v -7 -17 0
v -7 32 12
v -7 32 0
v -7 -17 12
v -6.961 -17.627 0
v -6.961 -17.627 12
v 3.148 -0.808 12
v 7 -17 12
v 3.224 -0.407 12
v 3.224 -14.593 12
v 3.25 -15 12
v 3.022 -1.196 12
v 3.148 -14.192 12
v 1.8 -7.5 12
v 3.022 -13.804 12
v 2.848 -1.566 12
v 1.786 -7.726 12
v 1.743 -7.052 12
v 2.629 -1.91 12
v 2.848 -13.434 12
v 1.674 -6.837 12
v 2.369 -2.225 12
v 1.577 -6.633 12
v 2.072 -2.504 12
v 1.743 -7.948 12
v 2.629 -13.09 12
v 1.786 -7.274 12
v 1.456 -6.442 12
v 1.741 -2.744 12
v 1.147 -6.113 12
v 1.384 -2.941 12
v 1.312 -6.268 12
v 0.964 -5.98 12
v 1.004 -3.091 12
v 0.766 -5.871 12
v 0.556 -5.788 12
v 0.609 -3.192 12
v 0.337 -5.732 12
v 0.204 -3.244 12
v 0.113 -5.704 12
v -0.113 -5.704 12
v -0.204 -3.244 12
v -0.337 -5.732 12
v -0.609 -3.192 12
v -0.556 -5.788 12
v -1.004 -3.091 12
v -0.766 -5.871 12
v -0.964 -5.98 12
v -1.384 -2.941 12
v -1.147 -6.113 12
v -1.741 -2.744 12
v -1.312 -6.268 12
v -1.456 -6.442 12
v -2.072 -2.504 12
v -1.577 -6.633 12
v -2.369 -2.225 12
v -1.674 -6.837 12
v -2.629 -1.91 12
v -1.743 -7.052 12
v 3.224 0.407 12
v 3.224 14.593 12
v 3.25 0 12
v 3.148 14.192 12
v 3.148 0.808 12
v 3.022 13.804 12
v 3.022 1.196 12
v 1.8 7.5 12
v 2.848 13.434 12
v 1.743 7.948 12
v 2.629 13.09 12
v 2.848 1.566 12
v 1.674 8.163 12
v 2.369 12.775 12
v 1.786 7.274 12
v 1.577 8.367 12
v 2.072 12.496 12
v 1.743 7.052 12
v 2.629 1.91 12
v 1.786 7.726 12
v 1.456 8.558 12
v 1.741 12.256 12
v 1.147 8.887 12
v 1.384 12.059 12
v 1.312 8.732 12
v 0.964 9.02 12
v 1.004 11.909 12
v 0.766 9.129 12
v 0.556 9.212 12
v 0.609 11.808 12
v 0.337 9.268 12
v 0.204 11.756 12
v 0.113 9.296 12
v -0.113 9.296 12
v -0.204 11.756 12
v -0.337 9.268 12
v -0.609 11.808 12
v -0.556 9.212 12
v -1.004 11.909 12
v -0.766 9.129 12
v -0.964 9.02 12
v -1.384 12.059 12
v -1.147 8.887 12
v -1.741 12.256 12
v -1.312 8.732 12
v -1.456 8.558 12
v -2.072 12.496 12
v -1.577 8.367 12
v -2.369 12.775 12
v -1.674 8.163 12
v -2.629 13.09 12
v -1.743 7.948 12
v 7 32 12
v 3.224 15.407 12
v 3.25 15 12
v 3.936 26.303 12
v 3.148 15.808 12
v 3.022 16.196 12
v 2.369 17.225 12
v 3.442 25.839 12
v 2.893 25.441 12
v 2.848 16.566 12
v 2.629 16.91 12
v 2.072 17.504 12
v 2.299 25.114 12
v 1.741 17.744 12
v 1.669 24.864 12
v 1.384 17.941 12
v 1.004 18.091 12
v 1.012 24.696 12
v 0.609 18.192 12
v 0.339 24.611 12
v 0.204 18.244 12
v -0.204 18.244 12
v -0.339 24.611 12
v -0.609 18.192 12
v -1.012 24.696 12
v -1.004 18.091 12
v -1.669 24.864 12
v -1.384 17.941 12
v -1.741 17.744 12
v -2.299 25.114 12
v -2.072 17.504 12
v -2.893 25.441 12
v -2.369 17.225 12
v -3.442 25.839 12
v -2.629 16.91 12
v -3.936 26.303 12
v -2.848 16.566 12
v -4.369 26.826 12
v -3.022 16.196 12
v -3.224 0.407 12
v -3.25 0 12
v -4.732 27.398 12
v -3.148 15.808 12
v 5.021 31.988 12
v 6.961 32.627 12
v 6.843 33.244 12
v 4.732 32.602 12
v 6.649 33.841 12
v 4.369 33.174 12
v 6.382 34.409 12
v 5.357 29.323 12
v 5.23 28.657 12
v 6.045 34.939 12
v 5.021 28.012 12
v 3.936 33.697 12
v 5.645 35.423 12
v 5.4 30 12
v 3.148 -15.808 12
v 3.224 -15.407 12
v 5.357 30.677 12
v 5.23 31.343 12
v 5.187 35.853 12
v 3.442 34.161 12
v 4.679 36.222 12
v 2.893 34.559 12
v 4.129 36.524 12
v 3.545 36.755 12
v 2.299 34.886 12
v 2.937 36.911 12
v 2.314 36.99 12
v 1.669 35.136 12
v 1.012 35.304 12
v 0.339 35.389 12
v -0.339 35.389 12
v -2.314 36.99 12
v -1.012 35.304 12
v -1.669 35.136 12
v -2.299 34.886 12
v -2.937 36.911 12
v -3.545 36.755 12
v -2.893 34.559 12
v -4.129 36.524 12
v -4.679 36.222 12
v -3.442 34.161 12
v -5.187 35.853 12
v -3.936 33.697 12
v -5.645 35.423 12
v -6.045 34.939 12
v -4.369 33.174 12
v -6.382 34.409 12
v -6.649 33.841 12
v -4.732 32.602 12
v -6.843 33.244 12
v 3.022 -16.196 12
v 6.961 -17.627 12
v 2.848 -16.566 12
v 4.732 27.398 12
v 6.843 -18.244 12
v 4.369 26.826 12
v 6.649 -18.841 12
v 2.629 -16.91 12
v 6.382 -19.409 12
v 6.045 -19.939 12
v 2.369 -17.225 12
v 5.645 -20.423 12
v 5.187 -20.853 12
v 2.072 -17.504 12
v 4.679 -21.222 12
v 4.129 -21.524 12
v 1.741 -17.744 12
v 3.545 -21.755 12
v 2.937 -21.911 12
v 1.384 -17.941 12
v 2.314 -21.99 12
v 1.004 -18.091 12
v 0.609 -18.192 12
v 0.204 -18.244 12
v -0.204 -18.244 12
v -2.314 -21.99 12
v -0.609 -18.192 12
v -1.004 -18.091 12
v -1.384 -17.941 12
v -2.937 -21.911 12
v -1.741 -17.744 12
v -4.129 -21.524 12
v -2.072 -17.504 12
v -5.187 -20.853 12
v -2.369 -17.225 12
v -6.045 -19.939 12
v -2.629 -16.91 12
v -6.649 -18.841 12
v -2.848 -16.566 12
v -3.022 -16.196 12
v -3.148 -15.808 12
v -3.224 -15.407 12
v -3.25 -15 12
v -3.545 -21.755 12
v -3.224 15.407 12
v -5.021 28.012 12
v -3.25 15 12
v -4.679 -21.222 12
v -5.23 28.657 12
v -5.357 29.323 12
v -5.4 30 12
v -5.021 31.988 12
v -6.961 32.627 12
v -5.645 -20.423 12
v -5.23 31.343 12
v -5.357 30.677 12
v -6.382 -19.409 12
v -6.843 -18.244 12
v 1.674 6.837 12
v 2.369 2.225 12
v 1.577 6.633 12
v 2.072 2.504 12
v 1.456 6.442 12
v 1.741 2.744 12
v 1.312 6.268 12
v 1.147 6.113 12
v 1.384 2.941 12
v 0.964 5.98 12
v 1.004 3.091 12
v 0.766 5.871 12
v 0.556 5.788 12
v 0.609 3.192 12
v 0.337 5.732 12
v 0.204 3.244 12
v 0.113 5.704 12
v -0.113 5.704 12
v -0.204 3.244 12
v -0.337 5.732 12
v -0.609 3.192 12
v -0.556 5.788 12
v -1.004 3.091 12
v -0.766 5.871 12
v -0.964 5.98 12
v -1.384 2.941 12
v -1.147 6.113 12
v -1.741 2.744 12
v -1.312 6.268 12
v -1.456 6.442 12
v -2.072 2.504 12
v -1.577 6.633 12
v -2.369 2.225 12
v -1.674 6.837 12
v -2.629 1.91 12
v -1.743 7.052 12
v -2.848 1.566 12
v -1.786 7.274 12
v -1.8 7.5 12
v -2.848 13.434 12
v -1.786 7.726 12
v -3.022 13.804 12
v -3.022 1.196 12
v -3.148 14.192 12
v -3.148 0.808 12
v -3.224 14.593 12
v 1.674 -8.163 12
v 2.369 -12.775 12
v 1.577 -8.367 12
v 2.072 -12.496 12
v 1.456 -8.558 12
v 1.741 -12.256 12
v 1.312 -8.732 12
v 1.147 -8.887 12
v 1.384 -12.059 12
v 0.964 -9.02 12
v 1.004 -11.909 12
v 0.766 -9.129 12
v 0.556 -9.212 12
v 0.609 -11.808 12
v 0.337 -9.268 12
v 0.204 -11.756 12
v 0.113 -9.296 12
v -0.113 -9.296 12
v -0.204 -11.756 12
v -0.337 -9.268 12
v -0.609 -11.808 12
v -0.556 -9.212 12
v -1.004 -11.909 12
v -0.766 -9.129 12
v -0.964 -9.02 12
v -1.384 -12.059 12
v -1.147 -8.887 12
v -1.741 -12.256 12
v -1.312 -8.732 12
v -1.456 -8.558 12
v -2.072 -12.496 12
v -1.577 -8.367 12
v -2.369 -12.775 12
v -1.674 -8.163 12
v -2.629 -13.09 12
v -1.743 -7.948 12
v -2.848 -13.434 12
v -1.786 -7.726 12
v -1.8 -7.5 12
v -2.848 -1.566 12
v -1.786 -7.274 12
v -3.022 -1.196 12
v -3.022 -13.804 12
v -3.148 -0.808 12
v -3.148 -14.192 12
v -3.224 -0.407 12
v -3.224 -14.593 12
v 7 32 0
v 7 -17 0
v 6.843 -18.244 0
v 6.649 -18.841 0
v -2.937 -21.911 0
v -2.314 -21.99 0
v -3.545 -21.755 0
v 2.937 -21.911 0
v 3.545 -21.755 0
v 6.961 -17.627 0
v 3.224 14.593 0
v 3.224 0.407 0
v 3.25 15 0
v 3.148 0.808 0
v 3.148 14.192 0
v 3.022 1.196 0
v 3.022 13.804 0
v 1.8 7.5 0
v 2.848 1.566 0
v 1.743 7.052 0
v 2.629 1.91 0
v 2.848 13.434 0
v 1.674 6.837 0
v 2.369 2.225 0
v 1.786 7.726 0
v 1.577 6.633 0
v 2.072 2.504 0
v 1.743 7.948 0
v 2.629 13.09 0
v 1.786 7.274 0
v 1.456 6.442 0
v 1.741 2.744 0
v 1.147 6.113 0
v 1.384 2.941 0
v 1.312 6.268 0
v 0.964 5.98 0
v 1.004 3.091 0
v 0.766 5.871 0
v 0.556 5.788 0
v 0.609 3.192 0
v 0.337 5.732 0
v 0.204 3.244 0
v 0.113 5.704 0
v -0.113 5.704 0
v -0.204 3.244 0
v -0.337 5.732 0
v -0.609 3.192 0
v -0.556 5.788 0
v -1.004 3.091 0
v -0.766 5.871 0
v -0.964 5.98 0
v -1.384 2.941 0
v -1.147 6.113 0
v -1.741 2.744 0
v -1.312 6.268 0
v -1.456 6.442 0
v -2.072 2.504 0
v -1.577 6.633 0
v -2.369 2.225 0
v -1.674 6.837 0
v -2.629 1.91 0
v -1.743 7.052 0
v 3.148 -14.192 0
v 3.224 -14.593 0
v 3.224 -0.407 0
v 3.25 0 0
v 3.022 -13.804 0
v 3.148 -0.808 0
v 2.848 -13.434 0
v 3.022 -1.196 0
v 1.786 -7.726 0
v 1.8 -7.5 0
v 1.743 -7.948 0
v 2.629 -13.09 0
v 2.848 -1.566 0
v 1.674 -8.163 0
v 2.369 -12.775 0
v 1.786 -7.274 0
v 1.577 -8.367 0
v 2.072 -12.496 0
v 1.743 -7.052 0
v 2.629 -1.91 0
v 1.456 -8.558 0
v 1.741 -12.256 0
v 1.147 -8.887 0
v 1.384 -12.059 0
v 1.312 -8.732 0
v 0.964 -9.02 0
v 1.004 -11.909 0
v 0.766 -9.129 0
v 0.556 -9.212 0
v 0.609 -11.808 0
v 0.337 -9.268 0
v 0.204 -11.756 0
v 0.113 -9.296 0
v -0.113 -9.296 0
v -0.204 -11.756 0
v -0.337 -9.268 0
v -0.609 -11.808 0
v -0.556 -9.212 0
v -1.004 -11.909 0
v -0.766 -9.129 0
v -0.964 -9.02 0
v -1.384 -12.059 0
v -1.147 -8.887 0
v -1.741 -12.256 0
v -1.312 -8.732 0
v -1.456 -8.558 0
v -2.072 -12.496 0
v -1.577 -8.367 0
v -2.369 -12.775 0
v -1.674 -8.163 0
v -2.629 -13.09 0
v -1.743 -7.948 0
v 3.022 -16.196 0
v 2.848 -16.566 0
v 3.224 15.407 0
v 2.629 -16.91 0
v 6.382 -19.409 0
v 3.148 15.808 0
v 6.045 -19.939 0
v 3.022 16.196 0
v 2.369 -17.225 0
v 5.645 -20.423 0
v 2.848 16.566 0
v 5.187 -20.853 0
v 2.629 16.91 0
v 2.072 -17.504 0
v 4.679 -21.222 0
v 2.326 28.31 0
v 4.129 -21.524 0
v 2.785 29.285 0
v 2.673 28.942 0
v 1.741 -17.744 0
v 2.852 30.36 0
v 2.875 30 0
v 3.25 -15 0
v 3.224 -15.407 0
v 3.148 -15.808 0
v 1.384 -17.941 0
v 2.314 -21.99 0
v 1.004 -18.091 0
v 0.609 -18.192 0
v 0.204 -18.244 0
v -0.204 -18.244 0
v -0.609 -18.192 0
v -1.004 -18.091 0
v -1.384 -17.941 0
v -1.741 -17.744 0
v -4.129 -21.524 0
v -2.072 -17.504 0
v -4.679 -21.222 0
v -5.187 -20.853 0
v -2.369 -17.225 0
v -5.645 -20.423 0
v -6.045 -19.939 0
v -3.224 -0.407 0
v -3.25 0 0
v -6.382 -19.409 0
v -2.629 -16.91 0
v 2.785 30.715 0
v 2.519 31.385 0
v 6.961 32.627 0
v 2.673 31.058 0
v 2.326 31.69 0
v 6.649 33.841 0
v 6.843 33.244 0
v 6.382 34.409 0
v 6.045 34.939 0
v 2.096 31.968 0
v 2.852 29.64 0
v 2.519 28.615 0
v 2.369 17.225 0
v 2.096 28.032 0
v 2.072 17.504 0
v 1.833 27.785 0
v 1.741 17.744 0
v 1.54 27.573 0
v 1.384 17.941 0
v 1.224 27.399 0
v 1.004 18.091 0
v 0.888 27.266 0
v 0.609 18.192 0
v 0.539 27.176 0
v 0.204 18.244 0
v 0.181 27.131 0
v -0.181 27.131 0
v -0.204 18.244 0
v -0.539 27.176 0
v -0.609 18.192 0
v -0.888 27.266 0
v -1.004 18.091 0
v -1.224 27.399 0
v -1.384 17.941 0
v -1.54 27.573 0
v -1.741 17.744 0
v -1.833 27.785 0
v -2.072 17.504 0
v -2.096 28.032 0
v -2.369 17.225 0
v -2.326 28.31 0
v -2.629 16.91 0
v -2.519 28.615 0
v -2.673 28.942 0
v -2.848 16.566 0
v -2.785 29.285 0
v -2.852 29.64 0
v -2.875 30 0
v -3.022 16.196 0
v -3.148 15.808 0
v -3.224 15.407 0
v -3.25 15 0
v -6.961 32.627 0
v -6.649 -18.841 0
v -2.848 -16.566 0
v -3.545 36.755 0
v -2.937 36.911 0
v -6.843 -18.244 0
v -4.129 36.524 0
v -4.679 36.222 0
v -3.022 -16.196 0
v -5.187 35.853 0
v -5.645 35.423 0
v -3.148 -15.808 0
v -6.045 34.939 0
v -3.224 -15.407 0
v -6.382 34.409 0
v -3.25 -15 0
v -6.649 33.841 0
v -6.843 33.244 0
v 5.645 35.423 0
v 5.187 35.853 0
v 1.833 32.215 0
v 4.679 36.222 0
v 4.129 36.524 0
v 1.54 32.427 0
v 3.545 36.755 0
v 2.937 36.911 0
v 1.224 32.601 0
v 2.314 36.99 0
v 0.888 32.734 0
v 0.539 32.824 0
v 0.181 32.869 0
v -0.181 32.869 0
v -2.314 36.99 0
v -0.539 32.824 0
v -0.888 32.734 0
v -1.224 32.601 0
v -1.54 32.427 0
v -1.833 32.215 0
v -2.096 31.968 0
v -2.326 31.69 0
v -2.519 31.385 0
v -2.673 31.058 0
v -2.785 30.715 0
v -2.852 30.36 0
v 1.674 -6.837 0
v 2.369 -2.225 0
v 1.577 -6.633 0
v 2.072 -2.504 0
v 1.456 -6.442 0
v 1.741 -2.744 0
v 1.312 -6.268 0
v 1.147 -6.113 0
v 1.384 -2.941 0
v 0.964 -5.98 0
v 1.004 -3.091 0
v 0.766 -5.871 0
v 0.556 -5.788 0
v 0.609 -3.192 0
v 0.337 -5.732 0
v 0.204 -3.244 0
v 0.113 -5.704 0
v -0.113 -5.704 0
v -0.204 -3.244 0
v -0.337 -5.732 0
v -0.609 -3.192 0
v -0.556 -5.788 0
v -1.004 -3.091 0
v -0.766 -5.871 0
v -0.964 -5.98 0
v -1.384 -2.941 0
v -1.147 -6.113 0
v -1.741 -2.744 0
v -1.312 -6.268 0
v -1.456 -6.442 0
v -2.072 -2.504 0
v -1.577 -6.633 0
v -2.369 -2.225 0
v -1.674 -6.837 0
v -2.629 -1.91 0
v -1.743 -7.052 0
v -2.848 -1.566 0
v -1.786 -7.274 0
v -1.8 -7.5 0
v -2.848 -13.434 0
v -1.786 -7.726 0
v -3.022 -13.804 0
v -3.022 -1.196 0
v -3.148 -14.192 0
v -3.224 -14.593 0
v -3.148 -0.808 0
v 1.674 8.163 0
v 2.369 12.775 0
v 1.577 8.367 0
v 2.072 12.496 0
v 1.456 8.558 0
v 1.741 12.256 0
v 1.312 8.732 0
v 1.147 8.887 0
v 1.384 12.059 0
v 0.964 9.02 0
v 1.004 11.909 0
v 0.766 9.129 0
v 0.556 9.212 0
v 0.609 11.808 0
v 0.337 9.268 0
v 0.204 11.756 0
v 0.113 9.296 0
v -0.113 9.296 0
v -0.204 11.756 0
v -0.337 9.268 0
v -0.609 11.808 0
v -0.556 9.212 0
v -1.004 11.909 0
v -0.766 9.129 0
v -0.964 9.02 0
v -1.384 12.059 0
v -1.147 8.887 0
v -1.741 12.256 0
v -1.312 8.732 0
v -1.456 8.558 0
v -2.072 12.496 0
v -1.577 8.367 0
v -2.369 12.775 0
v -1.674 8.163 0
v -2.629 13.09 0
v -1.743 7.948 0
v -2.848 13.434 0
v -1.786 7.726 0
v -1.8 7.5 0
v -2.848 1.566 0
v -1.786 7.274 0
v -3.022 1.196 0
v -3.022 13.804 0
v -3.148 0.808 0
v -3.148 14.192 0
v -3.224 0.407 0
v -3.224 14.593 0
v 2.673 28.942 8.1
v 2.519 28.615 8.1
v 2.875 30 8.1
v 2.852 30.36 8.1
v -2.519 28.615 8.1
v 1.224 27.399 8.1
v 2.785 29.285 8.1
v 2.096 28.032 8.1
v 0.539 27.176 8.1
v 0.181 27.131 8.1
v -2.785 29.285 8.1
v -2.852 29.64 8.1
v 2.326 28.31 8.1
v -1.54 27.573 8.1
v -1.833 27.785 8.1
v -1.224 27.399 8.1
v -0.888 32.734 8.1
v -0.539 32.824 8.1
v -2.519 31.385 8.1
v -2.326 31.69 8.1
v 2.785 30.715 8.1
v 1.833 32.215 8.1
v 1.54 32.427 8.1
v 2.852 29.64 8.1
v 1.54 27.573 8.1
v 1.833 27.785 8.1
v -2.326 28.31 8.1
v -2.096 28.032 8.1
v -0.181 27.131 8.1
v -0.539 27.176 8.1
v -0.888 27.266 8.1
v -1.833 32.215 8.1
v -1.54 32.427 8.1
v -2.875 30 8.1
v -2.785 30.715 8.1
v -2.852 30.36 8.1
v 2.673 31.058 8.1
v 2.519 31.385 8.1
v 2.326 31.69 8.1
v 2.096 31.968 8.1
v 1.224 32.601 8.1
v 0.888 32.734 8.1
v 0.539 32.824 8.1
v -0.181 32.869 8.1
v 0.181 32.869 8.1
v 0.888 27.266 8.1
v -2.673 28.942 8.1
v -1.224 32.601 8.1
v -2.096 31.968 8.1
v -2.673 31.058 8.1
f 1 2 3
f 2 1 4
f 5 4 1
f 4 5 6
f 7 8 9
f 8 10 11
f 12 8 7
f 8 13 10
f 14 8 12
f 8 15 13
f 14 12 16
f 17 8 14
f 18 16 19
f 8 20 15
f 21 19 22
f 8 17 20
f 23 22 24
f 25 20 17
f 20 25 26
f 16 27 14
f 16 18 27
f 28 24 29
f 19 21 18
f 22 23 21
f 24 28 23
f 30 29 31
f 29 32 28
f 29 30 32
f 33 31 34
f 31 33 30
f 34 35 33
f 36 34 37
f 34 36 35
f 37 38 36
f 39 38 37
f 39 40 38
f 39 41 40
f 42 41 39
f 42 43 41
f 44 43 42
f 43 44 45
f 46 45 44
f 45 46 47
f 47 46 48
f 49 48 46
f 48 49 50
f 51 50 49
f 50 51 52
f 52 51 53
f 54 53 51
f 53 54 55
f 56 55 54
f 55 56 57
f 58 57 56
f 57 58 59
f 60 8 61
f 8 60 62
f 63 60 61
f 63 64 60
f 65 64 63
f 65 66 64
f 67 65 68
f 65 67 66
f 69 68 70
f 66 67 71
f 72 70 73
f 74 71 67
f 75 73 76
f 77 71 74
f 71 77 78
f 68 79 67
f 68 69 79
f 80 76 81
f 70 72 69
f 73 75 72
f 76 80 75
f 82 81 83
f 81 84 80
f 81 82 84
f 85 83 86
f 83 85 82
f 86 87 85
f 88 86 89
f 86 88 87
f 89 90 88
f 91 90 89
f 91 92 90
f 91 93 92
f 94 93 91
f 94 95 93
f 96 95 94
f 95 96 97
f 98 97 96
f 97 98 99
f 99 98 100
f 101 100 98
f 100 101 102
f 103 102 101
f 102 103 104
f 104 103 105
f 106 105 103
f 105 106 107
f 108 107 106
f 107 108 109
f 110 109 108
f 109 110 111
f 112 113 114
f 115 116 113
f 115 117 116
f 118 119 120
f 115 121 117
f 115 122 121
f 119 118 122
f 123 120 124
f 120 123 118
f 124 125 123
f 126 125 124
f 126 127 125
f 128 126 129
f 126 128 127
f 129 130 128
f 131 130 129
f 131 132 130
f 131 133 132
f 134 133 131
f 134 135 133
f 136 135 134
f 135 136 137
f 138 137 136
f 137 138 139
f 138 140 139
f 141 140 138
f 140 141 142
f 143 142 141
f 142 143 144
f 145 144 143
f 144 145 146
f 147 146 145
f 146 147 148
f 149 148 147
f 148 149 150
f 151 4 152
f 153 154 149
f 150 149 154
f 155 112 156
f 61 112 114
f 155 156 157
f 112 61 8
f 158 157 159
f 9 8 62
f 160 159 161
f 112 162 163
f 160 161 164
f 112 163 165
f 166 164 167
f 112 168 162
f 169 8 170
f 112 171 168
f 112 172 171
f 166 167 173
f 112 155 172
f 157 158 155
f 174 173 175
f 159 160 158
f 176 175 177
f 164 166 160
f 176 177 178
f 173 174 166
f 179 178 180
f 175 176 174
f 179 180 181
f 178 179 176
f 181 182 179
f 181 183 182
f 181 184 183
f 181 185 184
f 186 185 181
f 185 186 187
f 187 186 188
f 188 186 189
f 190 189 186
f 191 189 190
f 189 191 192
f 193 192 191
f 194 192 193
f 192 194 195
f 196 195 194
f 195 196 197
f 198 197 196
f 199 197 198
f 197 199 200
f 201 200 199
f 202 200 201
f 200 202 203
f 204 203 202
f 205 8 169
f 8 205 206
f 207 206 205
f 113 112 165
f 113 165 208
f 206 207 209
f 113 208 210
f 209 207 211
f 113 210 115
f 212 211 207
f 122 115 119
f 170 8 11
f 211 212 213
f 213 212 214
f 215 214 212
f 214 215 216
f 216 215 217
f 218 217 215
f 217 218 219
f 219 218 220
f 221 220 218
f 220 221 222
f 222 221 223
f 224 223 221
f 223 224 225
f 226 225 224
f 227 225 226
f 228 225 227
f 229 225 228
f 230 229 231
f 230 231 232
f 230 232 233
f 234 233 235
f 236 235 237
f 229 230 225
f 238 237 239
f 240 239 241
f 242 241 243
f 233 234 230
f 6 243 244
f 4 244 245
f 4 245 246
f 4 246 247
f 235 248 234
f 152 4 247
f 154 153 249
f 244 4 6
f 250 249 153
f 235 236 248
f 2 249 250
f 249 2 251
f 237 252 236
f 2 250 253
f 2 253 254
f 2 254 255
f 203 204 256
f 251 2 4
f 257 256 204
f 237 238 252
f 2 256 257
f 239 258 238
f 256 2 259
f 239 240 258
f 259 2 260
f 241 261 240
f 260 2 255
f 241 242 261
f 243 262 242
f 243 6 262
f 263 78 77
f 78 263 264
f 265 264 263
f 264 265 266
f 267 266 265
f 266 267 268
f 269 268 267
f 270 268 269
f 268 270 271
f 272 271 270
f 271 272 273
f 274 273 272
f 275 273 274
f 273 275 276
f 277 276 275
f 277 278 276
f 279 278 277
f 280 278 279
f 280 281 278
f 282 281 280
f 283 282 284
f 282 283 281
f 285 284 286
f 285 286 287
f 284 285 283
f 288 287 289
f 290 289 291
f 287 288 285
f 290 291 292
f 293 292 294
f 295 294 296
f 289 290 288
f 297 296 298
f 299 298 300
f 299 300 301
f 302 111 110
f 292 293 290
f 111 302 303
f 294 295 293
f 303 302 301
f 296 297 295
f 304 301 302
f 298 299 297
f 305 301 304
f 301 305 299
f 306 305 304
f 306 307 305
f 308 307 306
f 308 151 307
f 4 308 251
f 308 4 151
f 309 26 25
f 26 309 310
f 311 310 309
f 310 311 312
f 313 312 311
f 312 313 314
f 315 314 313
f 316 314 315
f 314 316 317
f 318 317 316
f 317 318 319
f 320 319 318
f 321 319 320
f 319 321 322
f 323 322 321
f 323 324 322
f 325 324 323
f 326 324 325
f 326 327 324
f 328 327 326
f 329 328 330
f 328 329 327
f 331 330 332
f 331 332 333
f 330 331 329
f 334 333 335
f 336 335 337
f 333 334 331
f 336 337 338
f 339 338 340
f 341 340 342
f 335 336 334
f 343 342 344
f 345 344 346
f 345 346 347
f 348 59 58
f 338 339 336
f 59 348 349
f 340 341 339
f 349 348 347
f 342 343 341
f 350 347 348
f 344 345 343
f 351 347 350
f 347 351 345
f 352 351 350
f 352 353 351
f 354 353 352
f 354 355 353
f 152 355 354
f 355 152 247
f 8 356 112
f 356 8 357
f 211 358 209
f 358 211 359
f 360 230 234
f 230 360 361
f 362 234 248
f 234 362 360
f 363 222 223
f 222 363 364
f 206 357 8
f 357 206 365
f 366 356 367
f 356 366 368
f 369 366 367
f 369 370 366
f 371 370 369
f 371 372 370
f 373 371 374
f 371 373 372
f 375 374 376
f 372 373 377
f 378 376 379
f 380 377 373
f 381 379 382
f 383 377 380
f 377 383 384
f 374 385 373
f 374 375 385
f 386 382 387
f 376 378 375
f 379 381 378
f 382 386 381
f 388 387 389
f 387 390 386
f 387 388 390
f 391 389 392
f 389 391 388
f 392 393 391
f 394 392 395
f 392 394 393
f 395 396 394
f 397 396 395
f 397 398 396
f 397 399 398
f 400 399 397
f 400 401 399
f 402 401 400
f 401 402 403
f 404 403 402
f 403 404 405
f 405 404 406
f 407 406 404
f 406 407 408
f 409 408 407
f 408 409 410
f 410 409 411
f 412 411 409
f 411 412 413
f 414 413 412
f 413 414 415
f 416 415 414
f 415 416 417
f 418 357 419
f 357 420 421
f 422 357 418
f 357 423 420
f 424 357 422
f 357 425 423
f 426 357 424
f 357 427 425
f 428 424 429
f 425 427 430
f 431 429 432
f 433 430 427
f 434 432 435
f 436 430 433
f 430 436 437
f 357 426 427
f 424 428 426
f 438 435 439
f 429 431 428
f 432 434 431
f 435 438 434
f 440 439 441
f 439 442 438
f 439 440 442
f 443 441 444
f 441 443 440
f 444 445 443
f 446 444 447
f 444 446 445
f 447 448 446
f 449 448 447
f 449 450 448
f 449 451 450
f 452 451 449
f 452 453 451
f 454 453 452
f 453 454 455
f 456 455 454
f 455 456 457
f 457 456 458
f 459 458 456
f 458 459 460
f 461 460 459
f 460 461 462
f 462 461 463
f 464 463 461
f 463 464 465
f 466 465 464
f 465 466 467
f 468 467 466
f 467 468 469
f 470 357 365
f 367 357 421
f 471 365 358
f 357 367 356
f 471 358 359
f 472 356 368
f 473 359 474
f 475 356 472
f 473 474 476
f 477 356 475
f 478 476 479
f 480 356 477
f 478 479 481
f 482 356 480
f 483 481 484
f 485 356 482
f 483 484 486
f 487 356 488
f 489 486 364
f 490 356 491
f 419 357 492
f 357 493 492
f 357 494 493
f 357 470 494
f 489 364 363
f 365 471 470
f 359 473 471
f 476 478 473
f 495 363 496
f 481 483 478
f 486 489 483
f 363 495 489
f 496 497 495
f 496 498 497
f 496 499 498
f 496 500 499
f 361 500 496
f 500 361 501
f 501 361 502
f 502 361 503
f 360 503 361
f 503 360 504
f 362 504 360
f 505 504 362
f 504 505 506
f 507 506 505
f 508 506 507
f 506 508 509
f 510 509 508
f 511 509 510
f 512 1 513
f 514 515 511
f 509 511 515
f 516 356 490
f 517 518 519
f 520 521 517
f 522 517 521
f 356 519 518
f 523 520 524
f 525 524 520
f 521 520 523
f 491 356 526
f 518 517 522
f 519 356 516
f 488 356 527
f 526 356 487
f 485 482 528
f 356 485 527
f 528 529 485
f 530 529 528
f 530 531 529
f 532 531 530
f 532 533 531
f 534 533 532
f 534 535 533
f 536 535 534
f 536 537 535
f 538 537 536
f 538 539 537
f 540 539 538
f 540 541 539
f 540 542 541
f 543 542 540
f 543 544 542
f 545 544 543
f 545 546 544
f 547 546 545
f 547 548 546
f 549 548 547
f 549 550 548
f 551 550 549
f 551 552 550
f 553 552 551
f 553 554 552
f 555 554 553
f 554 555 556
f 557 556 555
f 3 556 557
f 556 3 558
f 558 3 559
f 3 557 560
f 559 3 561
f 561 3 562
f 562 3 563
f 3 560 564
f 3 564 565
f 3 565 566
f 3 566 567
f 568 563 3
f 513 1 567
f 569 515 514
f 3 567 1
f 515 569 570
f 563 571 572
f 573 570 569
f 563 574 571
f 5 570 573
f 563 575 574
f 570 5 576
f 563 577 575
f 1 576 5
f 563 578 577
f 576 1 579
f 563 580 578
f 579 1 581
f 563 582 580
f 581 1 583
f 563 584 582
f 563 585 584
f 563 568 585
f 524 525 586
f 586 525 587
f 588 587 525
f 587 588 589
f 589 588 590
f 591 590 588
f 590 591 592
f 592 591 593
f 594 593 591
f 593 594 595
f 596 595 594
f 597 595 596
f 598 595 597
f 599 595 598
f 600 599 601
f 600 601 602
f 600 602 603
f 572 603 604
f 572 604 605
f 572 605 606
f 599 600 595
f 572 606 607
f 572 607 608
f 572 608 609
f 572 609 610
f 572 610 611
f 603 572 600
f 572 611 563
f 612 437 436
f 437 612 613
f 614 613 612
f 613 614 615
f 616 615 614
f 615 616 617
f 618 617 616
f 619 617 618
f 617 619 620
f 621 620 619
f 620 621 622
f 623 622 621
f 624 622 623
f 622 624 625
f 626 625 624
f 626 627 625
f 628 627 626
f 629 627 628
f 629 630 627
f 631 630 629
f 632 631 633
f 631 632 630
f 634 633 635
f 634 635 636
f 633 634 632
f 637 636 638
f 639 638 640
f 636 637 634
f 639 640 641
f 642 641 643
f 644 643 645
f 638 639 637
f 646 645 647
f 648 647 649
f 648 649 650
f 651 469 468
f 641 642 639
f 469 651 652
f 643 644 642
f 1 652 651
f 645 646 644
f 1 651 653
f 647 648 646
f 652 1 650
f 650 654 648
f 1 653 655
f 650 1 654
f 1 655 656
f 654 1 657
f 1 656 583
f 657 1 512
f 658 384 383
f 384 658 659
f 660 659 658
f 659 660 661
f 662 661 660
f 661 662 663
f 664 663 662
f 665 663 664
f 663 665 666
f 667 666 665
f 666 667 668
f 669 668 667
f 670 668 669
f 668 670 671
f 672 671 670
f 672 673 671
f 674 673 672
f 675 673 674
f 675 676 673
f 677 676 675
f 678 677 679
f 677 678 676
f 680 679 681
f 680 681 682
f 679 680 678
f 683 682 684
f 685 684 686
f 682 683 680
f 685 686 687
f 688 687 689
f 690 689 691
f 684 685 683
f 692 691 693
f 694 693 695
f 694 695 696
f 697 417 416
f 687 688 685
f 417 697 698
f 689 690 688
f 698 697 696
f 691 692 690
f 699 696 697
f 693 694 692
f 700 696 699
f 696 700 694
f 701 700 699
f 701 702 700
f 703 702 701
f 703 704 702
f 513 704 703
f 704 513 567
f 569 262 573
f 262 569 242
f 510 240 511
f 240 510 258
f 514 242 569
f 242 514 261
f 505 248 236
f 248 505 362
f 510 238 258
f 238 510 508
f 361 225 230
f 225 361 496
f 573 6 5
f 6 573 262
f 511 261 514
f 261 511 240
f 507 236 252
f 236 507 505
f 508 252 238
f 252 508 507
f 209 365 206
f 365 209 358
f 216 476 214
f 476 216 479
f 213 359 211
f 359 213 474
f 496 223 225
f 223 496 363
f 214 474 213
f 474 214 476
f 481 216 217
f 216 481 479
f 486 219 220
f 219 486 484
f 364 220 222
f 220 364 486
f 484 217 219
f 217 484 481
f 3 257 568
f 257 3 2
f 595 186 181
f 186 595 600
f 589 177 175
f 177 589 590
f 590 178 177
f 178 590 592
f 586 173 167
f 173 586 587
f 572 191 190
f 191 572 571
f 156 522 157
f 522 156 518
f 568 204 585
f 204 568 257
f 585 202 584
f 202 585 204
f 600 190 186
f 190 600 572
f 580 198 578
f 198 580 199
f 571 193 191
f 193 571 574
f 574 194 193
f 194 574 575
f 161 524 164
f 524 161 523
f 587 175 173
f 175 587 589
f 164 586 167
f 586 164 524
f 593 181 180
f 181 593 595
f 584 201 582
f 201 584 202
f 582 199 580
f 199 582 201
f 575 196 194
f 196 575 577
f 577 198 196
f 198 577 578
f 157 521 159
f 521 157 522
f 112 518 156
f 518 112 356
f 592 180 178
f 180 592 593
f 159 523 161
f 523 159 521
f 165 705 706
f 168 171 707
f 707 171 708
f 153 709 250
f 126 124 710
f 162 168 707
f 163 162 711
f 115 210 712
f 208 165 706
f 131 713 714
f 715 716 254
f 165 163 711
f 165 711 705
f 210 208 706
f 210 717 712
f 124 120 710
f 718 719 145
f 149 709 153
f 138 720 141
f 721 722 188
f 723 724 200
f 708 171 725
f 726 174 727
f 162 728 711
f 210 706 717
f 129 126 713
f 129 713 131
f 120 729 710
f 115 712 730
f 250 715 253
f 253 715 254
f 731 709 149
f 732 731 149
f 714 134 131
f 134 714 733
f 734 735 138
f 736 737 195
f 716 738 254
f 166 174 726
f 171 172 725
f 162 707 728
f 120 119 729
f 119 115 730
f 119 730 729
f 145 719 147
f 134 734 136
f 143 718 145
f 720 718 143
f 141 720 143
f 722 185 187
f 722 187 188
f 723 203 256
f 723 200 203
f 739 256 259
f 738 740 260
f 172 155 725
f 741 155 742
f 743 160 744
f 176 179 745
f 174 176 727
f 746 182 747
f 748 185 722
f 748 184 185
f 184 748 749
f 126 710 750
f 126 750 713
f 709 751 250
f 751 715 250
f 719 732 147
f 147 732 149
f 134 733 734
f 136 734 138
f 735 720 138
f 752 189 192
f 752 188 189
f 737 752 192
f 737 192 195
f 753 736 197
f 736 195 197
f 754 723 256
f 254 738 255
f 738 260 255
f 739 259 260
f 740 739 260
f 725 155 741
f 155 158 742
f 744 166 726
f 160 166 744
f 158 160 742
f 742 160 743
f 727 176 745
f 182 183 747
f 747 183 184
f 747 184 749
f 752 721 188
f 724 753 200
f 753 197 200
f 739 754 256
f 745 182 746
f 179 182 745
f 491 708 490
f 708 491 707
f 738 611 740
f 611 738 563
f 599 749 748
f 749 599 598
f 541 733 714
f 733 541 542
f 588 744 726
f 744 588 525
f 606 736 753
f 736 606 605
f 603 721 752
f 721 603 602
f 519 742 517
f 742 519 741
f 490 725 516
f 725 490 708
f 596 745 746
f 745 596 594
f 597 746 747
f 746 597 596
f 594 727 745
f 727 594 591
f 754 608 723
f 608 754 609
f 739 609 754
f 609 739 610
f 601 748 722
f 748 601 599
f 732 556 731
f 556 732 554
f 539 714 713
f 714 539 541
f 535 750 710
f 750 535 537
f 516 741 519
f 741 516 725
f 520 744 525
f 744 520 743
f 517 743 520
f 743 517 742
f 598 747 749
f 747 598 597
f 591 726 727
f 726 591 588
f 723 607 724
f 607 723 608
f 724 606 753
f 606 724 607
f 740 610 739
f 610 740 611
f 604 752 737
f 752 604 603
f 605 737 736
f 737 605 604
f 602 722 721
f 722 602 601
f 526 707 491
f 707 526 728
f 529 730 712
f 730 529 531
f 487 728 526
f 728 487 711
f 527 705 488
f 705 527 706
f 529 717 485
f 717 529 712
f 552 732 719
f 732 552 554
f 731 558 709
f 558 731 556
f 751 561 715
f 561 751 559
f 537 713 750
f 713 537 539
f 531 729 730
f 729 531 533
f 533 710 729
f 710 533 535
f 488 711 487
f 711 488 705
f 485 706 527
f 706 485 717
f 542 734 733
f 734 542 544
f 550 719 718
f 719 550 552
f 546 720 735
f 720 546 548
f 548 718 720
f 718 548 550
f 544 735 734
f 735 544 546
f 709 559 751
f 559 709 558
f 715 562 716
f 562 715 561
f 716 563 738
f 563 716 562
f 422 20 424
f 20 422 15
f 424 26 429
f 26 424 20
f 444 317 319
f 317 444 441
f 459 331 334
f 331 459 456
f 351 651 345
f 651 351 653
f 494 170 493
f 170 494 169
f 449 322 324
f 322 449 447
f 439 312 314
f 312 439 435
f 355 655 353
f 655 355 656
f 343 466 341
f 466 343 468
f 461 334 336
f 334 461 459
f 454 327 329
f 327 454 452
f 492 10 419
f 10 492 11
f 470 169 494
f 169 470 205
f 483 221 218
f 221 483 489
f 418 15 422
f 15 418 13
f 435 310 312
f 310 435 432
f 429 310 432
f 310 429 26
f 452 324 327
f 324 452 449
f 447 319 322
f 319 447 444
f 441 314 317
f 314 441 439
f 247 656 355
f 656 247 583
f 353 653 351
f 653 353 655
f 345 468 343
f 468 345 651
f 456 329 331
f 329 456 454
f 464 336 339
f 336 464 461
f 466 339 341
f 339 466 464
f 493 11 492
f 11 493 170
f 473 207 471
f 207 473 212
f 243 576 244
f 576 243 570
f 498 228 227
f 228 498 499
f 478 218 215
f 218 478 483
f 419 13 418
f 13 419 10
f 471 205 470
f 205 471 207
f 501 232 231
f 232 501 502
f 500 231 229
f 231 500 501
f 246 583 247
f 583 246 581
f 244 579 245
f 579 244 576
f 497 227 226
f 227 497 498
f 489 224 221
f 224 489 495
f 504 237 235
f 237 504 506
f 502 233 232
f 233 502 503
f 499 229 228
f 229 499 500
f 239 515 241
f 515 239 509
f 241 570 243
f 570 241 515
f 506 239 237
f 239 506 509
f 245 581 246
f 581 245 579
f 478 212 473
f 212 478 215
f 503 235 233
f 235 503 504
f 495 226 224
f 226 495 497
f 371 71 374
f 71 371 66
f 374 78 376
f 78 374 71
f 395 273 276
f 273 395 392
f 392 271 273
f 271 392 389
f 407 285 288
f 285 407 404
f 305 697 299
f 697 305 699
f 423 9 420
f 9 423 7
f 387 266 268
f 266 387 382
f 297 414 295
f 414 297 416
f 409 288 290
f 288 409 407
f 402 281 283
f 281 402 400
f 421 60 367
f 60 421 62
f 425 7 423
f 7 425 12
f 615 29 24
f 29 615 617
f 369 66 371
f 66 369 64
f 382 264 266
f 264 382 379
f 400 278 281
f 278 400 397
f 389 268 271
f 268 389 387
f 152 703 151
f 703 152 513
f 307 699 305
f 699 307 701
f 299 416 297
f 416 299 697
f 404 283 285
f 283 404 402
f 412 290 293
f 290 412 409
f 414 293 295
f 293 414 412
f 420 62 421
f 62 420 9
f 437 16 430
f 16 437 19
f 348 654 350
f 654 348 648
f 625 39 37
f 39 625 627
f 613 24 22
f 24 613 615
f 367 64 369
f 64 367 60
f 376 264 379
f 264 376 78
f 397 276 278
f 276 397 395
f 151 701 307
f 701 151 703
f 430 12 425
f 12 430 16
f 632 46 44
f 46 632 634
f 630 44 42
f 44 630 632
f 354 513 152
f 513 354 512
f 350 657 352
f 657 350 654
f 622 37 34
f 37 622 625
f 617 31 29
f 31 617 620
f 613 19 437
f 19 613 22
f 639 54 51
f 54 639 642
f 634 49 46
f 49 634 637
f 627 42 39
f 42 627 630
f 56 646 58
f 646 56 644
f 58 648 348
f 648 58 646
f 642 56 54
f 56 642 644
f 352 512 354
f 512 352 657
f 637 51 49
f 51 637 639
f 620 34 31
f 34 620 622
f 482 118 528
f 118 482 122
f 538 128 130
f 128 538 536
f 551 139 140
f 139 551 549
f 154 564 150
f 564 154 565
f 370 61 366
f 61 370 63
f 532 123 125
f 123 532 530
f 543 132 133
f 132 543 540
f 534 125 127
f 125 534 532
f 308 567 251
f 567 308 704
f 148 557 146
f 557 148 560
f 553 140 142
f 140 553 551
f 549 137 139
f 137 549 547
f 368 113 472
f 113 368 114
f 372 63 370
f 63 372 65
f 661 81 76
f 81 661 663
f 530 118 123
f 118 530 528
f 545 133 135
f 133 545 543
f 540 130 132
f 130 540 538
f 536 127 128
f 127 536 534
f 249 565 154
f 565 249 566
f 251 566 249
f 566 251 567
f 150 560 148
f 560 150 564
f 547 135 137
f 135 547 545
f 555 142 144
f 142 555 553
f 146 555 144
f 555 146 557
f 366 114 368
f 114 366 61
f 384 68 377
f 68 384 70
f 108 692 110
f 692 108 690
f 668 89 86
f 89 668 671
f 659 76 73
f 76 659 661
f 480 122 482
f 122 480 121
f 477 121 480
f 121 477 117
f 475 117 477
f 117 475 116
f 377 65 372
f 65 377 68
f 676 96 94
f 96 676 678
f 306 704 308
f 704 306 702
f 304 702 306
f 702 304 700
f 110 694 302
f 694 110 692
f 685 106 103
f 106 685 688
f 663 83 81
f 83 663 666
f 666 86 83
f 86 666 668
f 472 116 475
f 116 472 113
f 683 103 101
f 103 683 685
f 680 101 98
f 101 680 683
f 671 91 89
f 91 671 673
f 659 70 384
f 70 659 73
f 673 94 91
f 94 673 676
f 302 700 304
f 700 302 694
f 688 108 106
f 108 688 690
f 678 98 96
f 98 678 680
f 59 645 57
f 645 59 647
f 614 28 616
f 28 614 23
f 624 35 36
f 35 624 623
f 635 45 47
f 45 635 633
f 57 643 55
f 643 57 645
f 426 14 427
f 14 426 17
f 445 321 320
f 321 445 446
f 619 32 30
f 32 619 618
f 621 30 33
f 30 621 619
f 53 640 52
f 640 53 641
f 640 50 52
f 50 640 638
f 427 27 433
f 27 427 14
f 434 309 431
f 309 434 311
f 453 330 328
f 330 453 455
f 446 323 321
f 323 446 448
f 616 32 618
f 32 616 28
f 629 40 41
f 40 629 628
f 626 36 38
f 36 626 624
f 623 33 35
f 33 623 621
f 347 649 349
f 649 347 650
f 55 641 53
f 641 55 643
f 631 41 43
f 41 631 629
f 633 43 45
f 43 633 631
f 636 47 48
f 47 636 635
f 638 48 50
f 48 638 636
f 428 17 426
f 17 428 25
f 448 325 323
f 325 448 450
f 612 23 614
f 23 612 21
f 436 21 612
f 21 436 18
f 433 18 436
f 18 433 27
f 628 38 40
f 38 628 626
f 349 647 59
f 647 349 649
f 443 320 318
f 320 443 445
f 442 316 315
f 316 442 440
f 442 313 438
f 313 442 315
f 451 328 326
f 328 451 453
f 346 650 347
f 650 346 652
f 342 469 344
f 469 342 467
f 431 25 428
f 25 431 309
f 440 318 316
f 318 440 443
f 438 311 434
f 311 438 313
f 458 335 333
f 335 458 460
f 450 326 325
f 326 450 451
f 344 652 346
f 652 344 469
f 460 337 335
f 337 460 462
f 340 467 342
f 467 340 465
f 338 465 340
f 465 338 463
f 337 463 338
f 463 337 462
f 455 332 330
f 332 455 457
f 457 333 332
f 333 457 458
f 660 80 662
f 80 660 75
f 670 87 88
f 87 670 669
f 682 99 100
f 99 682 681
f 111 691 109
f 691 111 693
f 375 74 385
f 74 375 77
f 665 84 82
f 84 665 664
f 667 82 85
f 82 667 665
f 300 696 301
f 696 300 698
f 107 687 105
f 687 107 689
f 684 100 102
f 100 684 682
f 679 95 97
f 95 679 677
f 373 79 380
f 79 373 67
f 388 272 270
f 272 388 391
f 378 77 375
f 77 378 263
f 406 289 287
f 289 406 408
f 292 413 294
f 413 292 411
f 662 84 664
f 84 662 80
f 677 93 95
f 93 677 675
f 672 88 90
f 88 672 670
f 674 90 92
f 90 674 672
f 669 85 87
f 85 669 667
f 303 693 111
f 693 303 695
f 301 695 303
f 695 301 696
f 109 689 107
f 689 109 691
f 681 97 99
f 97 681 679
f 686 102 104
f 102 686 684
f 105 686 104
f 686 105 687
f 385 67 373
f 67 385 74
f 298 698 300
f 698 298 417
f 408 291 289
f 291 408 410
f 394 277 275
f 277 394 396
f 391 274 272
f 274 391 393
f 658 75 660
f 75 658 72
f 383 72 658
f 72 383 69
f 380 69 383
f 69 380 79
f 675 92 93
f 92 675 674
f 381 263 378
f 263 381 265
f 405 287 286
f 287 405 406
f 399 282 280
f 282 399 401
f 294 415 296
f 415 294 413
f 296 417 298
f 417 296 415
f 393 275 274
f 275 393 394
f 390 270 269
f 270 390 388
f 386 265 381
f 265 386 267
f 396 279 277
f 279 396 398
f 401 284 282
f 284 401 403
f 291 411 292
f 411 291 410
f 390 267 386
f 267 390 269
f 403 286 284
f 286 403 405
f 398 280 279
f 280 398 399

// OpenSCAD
$fn = 50;


difference() {
	union() {
		hull() {
			translate(v = [-2.0000000000, 17.0000000000, 0]) {
				cylinder(h = 12, r = 5);
			}
			translate(v = [2.0000000000, 17.0000000000, 0]) {
				cylinder(h = 12, r = 5);
			}
			translate(v = [-2.0000000000, -17.0000000000, 0]) {
				cylinder(h = 12, r = 5);
			}
			translate(v = [2.0000000000, -17.0000000000, 0]) {
				cylinder(h = 12, r = 5);
			}
		}
		translate(v = [0.0000000000, 22.5000000000, 0]) {
			hull() {
				translate(v = [-2.0000000000, 9.5000000000, 0]) {
					cylinder(h = 12, r = 5);
				}
				translate(v = [2.0000000000, 9.5000000000, 0]) {
					cylinder(h = 12, r = 5);
				}
				translate(v = [-2.0000000000, -9.5000000000, 0]) {
					cylinder(h = 12, r = 5);
				}
				translate(v = [2.0000000000, -9.5000000000, 0]) {
					cylinder(h = 12, r = 5);
				}
			}
		}
		translate(v = [0.0000000000, 22.5000000000, 0]) {
			hull() {
				translate(v = [-2.0000000000, 9.5000000000, 0]) {
					cylinder(h = 12, r = 5);
				}
				translate(v = [2.0000000000, 9.5000000000, 0]) {
					cylinder(h = 12, r = 5);
				}
				translate(v = [-2.0000000000, -9.5000000000, 0]) {
					cylinder(h = 12, r = 5);
				}
				translate(v = [2.0000000000, -9.5000000000, 0]) {
					cylinder(h = 12, r = 5);
				}
			}
		}
	}
	union() {
		translate(v = [0.0000000000, 30.0000000000, 12]) {
			rotate(a = [0, 0, 0]) {
				difference() {
					union() {
						#translate(v = [0, 0, -12.0000000000]) {
							cylinder(h = 12, r = 2.6000000000);
						}
						#translate(v = [0, 0, -3.9000000000]) {
							cylinder(h = 3.9000000000, r1 = 2.8750000000, r2 = 5.4000000000);
						}
						#translate(v = [0, 0, -12.0000000000]) {
							cylinder(h = 12, r = 2.8750000000);
						}
						#translate(v = [0, 0, -12.0000000000]) {
							cylinder(h = 12, r = 2.6000000000);
						}
					}
					union();
				}
			}
		}
		translate(v = [0.0000000000, 30.0000000000, 12]) {
			rotate(a = [0, 0, 0]) {
				difference() {
					union() {
						#translate(v = [0, 0, -12.0000000000]) {
							cylinder(h = 12, r = 2.6000000000);
						}
						#translate(v = [0, 0, -3.9000000000]) {
							cylinder(h = 3.9000000000, r1 = 2.8750000000, r2 = 5.4000000000);
						}
						#translate(v = [0, 0, -12.0000000000]) {
							cylinder(h = 12, r = 2.8750000000);
						}
						#translate(v = [0, 0, -12.0000000000]) {
							cylinder(h = 12, r = 2.6000000000);
						}
					}
					union();
				}
			}
		}
		translate(v = [0.0000000000, -15.0000000000, 0]) {
			translate(v = [0, 0, -100]) {
				cylinder(h = 200, r = 3.2500000000);
			}
		}
		translate(v = [0, 0, -100]) {
			cylinder(h = 200, r = 3.2500000000);
		}
		translate(v = [0.0000000000, 15.0000000000, 0]) {
			translate(v = [0, 0, -100]) {
				cylinder(h = 200, r = 3.2500000000);
			}
		}
		translate(v = [0.0000000000, -15.0000000000, 0]) {
			translate(v = [0, 0, -100]) {
				cylinder(h = 200, r = 1.8000000000);
			}
		}
		translate(v = [0.0000000000, -7.5000000000, 0]) {
			translate(v = [0, 0, -100]) {
				cylinder(h = 200, r = 1.8000000000);
			}
		}
		translate(v = [0, 0, -100]) {
			cylinder(h = 200, r = 1.8000000000);
		}
		translate(v = [0.0000000000, 7.5000000000, 0]) {
			translate(v = [0, 0, -100]) {
				cylinder(h = 200, r = 1.8000000000);
			}
		}
		translate(v = [0.0000000000, 15.0000000000, 0]) {
			translate(v = [0, 0, -100]) {
				cylinder(h = 200, r = 1.8000000000);
			}
		}
	}
}
